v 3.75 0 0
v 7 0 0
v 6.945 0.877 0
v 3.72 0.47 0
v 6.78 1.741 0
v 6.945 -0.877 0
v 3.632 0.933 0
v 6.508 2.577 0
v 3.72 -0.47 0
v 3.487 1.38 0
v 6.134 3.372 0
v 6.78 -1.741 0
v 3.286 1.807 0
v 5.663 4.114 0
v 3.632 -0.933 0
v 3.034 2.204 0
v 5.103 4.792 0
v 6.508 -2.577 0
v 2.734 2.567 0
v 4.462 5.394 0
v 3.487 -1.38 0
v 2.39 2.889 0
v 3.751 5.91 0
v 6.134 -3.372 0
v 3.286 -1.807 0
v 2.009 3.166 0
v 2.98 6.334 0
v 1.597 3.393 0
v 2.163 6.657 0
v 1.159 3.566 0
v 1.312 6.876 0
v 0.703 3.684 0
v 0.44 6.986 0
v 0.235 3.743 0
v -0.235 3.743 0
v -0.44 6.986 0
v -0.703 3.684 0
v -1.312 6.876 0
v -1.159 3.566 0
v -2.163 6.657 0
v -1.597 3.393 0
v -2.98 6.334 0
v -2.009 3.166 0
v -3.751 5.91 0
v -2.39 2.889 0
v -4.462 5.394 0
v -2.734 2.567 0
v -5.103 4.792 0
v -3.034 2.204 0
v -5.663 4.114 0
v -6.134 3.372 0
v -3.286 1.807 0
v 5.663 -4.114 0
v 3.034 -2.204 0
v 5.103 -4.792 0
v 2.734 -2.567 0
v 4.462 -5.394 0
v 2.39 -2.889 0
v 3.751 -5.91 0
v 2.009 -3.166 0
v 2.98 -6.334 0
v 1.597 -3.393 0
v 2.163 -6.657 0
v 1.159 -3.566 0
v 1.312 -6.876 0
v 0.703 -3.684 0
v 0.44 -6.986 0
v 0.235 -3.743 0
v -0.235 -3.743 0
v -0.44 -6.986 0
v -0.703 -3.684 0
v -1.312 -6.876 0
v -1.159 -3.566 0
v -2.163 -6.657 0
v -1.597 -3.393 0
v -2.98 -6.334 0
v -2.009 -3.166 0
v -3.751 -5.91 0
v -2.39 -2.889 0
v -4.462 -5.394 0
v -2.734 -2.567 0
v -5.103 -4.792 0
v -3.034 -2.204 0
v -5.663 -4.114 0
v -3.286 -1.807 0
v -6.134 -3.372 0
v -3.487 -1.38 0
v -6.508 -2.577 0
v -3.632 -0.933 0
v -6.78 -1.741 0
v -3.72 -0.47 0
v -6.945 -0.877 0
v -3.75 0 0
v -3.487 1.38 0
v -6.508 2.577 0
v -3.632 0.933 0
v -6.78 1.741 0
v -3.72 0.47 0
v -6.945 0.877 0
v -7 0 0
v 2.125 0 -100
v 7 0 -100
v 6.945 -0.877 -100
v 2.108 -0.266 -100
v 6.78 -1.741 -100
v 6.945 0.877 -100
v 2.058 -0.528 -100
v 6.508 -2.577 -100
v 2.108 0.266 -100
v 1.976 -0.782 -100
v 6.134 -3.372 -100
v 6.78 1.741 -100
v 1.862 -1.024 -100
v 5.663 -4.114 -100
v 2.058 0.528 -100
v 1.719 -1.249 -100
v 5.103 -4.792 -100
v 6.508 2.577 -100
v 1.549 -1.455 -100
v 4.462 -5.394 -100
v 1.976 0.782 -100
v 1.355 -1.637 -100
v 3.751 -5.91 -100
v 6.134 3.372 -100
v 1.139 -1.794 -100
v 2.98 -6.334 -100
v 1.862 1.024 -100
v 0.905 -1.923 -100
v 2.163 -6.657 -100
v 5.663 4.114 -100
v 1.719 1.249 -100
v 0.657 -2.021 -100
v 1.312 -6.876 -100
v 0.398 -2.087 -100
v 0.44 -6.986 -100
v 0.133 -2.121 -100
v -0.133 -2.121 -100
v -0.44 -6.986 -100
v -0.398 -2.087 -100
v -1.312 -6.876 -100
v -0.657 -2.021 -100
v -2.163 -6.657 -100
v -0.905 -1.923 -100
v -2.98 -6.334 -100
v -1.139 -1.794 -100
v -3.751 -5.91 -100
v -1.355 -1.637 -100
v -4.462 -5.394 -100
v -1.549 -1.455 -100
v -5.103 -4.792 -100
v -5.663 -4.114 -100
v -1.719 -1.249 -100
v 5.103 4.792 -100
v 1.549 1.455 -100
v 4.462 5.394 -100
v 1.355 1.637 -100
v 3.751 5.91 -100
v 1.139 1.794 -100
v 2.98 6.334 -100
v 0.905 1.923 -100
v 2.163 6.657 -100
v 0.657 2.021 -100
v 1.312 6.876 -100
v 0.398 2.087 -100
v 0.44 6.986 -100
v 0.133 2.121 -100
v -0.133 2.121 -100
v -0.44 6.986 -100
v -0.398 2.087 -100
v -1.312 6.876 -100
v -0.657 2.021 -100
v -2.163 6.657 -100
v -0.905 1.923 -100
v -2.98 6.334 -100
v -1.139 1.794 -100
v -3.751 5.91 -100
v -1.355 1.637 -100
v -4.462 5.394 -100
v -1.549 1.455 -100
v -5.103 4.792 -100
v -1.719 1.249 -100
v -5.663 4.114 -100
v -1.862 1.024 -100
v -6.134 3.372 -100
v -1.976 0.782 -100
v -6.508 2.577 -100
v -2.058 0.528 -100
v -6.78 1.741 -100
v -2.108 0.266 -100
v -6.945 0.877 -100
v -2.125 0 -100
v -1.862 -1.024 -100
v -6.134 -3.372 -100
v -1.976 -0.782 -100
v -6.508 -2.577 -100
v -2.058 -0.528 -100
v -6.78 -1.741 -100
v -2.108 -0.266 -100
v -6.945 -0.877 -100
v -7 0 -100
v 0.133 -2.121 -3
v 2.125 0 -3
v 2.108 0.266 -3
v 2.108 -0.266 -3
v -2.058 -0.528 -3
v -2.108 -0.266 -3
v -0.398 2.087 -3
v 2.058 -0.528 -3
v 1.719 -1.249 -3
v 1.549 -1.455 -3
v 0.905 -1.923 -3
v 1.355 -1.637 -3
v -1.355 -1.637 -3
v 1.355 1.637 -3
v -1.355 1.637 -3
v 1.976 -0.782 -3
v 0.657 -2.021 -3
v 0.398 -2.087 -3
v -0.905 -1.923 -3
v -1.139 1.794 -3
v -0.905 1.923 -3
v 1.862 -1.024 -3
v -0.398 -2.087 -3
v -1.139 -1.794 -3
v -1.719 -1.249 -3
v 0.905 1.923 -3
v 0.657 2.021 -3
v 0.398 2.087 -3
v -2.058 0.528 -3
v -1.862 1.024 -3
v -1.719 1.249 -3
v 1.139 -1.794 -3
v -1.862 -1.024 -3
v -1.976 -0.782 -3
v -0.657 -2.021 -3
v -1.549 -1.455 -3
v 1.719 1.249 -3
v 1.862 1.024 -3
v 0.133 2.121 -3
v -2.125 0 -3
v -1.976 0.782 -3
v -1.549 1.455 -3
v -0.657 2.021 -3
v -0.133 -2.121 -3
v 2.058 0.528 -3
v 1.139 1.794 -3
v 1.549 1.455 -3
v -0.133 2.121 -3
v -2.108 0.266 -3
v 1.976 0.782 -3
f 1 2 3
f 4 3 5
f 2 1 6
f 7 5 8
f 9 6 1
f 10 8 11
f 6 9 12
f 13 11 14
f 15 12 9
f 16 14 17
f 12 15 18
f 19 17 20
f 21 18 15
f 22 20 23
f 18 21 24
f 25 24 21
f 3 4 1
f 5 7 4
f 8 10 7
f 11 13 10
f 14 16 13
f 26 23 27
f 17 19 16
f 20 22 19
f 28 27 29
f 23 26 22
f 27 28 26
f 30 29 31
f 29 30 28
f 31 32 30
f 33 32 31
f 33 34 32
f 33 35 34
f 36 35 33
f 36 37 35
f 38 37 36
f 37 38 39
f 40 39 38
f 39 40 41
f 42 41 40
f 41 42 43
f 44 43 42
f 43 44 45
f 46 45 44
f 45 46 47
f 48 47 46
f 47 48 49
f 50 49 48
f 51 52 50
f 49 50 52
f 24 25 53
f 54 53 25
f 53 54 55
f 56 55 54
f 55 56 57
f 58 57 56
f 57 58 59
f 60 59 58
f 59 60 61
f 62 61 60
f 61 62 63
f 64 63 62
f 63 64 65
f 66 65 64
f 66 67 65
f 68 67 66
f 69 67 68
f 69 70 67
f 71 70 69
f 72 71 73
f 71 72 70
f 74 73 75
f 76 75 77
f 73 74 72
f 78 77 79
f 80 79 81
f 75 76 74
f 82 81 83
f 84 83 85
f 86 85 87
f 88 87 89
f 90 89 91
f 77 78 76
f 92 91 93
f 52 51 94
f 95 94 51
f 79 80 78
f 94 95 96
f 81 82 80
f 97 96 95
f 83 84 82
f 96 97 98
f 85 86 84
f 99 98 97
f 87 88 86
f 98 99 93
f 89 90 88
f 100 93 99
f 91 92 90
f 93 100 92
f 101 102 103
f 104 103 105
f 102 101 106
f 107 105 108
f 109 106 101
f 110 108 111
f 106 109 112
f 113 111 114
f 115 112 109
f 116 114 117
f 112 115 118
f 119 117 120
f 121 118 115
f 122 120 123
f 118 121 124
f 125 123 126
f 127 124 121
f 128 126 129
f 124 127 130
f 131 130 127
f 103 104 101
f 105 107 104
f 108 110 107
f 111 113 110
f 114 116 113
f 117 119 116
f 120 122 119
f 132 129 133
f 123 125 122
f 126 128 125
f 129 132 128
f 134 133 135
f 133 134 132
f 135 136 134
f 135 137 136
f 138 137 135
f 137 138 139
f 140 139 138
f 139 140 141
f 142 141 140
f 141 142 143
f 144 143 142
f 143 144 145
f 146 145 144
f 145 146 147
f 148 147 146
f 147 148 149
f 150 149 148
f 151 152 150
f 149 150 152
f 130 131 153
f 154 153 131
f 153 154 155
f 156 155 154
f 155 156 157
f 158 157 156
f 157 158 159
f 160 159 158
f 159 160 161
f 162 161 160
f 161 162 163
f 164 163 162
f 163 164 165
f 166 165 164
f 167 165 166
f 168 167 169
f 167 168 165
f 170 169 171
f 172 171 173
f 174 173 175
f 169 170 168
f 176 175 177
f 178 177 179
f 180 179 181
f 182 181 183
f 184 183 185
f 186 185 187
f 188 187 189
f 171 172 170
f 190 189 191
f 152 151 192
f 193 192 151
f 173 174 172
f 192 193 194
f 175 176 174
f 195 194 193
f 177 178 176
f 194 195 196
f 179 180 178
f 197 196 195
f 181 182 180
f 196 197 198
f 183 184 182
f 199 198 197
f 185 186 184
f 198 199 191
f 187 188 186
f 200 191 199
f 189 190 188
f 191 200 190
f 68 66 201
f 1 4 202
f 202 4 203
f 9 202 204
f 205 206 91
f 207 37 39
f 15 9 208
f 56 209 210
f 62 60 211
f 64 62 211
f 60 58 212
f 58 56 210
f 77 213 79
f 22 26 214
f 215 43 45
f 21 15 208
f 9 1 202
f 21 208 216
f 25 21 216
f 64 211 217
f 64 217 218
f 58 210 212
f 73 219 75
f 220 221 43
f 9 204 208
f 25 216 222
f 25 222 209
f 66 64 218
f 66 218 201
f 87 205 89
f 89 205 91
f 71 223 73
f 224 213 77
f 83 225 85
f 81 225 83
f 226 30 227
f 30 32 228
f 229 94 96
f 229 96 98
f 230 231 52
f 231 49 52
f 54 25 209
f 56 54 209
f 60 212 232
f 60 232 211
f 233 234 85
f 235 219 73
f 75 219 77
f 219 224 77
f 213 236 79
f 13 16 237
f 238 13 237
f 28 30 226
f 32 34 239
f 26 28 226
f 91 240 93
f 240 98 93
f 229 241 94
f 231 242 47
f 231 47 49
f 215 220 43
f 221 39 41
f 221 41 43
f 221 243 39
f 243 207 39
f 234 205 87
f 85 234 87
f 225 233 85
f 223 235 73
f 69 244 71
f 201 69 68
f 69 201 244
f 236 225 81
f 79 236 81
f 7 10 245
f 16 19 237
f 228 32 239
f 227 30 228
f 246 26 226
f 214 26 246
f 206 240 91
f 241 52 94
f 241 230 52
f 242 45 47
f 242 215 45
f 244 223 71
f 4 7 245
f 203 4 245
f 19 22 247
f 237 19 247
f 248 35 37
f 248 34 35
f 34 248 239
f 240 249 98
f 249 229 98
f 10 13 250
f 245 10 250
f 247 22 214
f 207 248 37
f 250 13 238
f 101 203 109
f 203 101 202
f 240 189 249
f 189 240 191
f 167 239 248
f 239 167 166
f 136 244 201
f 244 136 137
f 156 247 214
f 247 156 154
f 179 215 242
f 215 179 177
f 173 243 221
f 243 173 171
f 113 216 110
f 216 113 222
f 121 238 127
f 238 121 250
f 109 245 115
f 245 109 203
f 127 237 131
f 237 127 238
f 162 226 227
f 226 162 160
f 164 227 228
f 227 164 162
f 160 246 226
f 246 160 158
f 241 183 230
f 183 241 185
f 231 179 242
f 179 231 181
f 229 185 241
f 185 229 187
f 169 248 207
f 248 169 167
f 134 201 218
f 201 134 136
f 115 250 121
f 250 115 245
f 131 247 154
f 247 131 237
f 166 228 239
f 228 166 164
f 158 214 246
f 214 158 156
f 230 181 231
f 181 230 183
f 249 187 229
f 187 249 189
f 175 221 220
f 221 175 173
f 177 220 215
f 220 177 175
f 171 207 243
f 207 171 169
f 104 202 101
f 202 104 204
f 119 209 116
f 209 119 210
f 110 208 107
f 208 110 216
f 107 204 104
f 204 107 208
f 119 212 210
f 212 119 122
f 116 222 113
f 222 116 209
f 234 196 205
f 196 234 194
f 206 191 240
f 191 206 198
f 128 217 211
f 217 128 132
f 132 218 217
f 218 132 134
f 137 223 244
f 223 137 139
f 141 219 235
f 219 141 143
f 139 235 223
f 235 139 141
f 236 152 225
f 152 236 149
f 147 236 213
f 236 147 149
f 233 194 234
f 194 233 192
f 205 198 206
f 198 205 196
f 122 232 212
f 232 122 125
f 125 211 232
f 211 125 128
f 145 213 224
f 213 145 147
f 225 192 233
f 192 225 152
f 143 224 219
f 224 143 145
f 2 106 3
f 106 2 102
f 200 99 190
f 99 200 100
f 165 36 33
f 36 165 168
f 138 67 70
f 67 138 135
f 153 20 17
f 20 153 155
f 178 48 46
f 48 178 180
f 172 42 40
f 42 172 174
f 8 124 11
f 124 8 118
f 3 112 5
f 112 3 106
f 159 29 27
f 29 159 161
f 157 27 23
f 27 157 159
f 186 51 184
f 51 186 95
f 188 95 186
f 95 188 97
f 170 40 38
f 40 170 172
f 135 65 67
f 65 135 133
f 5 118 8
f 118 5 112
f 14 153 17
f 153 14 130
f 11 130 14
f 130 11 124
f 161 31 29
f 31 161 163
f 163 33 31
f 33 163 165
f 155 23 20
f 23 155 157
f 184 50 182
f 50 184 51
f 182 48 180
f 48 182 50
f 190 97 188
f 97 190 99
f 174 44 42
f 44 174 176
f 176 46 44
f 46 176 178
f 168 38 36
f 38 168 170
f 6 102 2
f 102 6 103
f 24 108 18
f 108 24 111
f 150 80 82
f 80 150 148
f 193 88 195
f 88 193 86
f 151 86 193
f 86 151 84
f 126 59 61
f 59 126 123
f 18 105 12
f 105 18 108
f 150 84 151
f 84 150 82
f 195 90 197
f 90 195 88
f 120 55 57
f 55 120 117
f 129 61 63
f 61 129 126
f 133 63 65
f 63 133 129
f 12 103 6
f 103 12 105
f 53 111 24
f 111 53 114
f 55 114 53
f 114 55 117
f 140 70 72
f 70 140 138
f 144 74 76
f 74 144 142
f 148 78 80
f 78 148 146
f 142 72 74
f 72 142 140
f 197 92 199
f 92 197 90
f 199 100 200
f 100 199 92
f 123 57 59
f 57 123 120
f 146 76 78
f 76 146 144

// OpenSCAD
$fn = 50;


difference() {
	union() {
		translate(v = [0, 0, -100.0000000000]) {
			cylinder(h = 100, r = 7.0000000000);
		}
	}
	union() {
		translate(v = [0, 0, 0]) {
			rotate(a = [0, 0, 0]) {
				difference() {
					union() {
						#translate(v = [0, 0, -100.0000000000]) {
							cylinder(h = 100, r = 2.0000000000);
						}
						#translate(v = [0, 0, -3]) {
							cylinder(h = 3, r1 = 2.1250000000, r2 = 3.7500000000);
						}
						#translate(v = [0, 0, -100.0000000000]) {
							cylinder(h = 100, r = 2.1250000000);
						}
						#translate(v = [0, 0, -100.0000000000]) {
							cylinder(h = 100, r = 2.0000000000);
						}
					}
					union();
				}
			}
		}
	}
}
